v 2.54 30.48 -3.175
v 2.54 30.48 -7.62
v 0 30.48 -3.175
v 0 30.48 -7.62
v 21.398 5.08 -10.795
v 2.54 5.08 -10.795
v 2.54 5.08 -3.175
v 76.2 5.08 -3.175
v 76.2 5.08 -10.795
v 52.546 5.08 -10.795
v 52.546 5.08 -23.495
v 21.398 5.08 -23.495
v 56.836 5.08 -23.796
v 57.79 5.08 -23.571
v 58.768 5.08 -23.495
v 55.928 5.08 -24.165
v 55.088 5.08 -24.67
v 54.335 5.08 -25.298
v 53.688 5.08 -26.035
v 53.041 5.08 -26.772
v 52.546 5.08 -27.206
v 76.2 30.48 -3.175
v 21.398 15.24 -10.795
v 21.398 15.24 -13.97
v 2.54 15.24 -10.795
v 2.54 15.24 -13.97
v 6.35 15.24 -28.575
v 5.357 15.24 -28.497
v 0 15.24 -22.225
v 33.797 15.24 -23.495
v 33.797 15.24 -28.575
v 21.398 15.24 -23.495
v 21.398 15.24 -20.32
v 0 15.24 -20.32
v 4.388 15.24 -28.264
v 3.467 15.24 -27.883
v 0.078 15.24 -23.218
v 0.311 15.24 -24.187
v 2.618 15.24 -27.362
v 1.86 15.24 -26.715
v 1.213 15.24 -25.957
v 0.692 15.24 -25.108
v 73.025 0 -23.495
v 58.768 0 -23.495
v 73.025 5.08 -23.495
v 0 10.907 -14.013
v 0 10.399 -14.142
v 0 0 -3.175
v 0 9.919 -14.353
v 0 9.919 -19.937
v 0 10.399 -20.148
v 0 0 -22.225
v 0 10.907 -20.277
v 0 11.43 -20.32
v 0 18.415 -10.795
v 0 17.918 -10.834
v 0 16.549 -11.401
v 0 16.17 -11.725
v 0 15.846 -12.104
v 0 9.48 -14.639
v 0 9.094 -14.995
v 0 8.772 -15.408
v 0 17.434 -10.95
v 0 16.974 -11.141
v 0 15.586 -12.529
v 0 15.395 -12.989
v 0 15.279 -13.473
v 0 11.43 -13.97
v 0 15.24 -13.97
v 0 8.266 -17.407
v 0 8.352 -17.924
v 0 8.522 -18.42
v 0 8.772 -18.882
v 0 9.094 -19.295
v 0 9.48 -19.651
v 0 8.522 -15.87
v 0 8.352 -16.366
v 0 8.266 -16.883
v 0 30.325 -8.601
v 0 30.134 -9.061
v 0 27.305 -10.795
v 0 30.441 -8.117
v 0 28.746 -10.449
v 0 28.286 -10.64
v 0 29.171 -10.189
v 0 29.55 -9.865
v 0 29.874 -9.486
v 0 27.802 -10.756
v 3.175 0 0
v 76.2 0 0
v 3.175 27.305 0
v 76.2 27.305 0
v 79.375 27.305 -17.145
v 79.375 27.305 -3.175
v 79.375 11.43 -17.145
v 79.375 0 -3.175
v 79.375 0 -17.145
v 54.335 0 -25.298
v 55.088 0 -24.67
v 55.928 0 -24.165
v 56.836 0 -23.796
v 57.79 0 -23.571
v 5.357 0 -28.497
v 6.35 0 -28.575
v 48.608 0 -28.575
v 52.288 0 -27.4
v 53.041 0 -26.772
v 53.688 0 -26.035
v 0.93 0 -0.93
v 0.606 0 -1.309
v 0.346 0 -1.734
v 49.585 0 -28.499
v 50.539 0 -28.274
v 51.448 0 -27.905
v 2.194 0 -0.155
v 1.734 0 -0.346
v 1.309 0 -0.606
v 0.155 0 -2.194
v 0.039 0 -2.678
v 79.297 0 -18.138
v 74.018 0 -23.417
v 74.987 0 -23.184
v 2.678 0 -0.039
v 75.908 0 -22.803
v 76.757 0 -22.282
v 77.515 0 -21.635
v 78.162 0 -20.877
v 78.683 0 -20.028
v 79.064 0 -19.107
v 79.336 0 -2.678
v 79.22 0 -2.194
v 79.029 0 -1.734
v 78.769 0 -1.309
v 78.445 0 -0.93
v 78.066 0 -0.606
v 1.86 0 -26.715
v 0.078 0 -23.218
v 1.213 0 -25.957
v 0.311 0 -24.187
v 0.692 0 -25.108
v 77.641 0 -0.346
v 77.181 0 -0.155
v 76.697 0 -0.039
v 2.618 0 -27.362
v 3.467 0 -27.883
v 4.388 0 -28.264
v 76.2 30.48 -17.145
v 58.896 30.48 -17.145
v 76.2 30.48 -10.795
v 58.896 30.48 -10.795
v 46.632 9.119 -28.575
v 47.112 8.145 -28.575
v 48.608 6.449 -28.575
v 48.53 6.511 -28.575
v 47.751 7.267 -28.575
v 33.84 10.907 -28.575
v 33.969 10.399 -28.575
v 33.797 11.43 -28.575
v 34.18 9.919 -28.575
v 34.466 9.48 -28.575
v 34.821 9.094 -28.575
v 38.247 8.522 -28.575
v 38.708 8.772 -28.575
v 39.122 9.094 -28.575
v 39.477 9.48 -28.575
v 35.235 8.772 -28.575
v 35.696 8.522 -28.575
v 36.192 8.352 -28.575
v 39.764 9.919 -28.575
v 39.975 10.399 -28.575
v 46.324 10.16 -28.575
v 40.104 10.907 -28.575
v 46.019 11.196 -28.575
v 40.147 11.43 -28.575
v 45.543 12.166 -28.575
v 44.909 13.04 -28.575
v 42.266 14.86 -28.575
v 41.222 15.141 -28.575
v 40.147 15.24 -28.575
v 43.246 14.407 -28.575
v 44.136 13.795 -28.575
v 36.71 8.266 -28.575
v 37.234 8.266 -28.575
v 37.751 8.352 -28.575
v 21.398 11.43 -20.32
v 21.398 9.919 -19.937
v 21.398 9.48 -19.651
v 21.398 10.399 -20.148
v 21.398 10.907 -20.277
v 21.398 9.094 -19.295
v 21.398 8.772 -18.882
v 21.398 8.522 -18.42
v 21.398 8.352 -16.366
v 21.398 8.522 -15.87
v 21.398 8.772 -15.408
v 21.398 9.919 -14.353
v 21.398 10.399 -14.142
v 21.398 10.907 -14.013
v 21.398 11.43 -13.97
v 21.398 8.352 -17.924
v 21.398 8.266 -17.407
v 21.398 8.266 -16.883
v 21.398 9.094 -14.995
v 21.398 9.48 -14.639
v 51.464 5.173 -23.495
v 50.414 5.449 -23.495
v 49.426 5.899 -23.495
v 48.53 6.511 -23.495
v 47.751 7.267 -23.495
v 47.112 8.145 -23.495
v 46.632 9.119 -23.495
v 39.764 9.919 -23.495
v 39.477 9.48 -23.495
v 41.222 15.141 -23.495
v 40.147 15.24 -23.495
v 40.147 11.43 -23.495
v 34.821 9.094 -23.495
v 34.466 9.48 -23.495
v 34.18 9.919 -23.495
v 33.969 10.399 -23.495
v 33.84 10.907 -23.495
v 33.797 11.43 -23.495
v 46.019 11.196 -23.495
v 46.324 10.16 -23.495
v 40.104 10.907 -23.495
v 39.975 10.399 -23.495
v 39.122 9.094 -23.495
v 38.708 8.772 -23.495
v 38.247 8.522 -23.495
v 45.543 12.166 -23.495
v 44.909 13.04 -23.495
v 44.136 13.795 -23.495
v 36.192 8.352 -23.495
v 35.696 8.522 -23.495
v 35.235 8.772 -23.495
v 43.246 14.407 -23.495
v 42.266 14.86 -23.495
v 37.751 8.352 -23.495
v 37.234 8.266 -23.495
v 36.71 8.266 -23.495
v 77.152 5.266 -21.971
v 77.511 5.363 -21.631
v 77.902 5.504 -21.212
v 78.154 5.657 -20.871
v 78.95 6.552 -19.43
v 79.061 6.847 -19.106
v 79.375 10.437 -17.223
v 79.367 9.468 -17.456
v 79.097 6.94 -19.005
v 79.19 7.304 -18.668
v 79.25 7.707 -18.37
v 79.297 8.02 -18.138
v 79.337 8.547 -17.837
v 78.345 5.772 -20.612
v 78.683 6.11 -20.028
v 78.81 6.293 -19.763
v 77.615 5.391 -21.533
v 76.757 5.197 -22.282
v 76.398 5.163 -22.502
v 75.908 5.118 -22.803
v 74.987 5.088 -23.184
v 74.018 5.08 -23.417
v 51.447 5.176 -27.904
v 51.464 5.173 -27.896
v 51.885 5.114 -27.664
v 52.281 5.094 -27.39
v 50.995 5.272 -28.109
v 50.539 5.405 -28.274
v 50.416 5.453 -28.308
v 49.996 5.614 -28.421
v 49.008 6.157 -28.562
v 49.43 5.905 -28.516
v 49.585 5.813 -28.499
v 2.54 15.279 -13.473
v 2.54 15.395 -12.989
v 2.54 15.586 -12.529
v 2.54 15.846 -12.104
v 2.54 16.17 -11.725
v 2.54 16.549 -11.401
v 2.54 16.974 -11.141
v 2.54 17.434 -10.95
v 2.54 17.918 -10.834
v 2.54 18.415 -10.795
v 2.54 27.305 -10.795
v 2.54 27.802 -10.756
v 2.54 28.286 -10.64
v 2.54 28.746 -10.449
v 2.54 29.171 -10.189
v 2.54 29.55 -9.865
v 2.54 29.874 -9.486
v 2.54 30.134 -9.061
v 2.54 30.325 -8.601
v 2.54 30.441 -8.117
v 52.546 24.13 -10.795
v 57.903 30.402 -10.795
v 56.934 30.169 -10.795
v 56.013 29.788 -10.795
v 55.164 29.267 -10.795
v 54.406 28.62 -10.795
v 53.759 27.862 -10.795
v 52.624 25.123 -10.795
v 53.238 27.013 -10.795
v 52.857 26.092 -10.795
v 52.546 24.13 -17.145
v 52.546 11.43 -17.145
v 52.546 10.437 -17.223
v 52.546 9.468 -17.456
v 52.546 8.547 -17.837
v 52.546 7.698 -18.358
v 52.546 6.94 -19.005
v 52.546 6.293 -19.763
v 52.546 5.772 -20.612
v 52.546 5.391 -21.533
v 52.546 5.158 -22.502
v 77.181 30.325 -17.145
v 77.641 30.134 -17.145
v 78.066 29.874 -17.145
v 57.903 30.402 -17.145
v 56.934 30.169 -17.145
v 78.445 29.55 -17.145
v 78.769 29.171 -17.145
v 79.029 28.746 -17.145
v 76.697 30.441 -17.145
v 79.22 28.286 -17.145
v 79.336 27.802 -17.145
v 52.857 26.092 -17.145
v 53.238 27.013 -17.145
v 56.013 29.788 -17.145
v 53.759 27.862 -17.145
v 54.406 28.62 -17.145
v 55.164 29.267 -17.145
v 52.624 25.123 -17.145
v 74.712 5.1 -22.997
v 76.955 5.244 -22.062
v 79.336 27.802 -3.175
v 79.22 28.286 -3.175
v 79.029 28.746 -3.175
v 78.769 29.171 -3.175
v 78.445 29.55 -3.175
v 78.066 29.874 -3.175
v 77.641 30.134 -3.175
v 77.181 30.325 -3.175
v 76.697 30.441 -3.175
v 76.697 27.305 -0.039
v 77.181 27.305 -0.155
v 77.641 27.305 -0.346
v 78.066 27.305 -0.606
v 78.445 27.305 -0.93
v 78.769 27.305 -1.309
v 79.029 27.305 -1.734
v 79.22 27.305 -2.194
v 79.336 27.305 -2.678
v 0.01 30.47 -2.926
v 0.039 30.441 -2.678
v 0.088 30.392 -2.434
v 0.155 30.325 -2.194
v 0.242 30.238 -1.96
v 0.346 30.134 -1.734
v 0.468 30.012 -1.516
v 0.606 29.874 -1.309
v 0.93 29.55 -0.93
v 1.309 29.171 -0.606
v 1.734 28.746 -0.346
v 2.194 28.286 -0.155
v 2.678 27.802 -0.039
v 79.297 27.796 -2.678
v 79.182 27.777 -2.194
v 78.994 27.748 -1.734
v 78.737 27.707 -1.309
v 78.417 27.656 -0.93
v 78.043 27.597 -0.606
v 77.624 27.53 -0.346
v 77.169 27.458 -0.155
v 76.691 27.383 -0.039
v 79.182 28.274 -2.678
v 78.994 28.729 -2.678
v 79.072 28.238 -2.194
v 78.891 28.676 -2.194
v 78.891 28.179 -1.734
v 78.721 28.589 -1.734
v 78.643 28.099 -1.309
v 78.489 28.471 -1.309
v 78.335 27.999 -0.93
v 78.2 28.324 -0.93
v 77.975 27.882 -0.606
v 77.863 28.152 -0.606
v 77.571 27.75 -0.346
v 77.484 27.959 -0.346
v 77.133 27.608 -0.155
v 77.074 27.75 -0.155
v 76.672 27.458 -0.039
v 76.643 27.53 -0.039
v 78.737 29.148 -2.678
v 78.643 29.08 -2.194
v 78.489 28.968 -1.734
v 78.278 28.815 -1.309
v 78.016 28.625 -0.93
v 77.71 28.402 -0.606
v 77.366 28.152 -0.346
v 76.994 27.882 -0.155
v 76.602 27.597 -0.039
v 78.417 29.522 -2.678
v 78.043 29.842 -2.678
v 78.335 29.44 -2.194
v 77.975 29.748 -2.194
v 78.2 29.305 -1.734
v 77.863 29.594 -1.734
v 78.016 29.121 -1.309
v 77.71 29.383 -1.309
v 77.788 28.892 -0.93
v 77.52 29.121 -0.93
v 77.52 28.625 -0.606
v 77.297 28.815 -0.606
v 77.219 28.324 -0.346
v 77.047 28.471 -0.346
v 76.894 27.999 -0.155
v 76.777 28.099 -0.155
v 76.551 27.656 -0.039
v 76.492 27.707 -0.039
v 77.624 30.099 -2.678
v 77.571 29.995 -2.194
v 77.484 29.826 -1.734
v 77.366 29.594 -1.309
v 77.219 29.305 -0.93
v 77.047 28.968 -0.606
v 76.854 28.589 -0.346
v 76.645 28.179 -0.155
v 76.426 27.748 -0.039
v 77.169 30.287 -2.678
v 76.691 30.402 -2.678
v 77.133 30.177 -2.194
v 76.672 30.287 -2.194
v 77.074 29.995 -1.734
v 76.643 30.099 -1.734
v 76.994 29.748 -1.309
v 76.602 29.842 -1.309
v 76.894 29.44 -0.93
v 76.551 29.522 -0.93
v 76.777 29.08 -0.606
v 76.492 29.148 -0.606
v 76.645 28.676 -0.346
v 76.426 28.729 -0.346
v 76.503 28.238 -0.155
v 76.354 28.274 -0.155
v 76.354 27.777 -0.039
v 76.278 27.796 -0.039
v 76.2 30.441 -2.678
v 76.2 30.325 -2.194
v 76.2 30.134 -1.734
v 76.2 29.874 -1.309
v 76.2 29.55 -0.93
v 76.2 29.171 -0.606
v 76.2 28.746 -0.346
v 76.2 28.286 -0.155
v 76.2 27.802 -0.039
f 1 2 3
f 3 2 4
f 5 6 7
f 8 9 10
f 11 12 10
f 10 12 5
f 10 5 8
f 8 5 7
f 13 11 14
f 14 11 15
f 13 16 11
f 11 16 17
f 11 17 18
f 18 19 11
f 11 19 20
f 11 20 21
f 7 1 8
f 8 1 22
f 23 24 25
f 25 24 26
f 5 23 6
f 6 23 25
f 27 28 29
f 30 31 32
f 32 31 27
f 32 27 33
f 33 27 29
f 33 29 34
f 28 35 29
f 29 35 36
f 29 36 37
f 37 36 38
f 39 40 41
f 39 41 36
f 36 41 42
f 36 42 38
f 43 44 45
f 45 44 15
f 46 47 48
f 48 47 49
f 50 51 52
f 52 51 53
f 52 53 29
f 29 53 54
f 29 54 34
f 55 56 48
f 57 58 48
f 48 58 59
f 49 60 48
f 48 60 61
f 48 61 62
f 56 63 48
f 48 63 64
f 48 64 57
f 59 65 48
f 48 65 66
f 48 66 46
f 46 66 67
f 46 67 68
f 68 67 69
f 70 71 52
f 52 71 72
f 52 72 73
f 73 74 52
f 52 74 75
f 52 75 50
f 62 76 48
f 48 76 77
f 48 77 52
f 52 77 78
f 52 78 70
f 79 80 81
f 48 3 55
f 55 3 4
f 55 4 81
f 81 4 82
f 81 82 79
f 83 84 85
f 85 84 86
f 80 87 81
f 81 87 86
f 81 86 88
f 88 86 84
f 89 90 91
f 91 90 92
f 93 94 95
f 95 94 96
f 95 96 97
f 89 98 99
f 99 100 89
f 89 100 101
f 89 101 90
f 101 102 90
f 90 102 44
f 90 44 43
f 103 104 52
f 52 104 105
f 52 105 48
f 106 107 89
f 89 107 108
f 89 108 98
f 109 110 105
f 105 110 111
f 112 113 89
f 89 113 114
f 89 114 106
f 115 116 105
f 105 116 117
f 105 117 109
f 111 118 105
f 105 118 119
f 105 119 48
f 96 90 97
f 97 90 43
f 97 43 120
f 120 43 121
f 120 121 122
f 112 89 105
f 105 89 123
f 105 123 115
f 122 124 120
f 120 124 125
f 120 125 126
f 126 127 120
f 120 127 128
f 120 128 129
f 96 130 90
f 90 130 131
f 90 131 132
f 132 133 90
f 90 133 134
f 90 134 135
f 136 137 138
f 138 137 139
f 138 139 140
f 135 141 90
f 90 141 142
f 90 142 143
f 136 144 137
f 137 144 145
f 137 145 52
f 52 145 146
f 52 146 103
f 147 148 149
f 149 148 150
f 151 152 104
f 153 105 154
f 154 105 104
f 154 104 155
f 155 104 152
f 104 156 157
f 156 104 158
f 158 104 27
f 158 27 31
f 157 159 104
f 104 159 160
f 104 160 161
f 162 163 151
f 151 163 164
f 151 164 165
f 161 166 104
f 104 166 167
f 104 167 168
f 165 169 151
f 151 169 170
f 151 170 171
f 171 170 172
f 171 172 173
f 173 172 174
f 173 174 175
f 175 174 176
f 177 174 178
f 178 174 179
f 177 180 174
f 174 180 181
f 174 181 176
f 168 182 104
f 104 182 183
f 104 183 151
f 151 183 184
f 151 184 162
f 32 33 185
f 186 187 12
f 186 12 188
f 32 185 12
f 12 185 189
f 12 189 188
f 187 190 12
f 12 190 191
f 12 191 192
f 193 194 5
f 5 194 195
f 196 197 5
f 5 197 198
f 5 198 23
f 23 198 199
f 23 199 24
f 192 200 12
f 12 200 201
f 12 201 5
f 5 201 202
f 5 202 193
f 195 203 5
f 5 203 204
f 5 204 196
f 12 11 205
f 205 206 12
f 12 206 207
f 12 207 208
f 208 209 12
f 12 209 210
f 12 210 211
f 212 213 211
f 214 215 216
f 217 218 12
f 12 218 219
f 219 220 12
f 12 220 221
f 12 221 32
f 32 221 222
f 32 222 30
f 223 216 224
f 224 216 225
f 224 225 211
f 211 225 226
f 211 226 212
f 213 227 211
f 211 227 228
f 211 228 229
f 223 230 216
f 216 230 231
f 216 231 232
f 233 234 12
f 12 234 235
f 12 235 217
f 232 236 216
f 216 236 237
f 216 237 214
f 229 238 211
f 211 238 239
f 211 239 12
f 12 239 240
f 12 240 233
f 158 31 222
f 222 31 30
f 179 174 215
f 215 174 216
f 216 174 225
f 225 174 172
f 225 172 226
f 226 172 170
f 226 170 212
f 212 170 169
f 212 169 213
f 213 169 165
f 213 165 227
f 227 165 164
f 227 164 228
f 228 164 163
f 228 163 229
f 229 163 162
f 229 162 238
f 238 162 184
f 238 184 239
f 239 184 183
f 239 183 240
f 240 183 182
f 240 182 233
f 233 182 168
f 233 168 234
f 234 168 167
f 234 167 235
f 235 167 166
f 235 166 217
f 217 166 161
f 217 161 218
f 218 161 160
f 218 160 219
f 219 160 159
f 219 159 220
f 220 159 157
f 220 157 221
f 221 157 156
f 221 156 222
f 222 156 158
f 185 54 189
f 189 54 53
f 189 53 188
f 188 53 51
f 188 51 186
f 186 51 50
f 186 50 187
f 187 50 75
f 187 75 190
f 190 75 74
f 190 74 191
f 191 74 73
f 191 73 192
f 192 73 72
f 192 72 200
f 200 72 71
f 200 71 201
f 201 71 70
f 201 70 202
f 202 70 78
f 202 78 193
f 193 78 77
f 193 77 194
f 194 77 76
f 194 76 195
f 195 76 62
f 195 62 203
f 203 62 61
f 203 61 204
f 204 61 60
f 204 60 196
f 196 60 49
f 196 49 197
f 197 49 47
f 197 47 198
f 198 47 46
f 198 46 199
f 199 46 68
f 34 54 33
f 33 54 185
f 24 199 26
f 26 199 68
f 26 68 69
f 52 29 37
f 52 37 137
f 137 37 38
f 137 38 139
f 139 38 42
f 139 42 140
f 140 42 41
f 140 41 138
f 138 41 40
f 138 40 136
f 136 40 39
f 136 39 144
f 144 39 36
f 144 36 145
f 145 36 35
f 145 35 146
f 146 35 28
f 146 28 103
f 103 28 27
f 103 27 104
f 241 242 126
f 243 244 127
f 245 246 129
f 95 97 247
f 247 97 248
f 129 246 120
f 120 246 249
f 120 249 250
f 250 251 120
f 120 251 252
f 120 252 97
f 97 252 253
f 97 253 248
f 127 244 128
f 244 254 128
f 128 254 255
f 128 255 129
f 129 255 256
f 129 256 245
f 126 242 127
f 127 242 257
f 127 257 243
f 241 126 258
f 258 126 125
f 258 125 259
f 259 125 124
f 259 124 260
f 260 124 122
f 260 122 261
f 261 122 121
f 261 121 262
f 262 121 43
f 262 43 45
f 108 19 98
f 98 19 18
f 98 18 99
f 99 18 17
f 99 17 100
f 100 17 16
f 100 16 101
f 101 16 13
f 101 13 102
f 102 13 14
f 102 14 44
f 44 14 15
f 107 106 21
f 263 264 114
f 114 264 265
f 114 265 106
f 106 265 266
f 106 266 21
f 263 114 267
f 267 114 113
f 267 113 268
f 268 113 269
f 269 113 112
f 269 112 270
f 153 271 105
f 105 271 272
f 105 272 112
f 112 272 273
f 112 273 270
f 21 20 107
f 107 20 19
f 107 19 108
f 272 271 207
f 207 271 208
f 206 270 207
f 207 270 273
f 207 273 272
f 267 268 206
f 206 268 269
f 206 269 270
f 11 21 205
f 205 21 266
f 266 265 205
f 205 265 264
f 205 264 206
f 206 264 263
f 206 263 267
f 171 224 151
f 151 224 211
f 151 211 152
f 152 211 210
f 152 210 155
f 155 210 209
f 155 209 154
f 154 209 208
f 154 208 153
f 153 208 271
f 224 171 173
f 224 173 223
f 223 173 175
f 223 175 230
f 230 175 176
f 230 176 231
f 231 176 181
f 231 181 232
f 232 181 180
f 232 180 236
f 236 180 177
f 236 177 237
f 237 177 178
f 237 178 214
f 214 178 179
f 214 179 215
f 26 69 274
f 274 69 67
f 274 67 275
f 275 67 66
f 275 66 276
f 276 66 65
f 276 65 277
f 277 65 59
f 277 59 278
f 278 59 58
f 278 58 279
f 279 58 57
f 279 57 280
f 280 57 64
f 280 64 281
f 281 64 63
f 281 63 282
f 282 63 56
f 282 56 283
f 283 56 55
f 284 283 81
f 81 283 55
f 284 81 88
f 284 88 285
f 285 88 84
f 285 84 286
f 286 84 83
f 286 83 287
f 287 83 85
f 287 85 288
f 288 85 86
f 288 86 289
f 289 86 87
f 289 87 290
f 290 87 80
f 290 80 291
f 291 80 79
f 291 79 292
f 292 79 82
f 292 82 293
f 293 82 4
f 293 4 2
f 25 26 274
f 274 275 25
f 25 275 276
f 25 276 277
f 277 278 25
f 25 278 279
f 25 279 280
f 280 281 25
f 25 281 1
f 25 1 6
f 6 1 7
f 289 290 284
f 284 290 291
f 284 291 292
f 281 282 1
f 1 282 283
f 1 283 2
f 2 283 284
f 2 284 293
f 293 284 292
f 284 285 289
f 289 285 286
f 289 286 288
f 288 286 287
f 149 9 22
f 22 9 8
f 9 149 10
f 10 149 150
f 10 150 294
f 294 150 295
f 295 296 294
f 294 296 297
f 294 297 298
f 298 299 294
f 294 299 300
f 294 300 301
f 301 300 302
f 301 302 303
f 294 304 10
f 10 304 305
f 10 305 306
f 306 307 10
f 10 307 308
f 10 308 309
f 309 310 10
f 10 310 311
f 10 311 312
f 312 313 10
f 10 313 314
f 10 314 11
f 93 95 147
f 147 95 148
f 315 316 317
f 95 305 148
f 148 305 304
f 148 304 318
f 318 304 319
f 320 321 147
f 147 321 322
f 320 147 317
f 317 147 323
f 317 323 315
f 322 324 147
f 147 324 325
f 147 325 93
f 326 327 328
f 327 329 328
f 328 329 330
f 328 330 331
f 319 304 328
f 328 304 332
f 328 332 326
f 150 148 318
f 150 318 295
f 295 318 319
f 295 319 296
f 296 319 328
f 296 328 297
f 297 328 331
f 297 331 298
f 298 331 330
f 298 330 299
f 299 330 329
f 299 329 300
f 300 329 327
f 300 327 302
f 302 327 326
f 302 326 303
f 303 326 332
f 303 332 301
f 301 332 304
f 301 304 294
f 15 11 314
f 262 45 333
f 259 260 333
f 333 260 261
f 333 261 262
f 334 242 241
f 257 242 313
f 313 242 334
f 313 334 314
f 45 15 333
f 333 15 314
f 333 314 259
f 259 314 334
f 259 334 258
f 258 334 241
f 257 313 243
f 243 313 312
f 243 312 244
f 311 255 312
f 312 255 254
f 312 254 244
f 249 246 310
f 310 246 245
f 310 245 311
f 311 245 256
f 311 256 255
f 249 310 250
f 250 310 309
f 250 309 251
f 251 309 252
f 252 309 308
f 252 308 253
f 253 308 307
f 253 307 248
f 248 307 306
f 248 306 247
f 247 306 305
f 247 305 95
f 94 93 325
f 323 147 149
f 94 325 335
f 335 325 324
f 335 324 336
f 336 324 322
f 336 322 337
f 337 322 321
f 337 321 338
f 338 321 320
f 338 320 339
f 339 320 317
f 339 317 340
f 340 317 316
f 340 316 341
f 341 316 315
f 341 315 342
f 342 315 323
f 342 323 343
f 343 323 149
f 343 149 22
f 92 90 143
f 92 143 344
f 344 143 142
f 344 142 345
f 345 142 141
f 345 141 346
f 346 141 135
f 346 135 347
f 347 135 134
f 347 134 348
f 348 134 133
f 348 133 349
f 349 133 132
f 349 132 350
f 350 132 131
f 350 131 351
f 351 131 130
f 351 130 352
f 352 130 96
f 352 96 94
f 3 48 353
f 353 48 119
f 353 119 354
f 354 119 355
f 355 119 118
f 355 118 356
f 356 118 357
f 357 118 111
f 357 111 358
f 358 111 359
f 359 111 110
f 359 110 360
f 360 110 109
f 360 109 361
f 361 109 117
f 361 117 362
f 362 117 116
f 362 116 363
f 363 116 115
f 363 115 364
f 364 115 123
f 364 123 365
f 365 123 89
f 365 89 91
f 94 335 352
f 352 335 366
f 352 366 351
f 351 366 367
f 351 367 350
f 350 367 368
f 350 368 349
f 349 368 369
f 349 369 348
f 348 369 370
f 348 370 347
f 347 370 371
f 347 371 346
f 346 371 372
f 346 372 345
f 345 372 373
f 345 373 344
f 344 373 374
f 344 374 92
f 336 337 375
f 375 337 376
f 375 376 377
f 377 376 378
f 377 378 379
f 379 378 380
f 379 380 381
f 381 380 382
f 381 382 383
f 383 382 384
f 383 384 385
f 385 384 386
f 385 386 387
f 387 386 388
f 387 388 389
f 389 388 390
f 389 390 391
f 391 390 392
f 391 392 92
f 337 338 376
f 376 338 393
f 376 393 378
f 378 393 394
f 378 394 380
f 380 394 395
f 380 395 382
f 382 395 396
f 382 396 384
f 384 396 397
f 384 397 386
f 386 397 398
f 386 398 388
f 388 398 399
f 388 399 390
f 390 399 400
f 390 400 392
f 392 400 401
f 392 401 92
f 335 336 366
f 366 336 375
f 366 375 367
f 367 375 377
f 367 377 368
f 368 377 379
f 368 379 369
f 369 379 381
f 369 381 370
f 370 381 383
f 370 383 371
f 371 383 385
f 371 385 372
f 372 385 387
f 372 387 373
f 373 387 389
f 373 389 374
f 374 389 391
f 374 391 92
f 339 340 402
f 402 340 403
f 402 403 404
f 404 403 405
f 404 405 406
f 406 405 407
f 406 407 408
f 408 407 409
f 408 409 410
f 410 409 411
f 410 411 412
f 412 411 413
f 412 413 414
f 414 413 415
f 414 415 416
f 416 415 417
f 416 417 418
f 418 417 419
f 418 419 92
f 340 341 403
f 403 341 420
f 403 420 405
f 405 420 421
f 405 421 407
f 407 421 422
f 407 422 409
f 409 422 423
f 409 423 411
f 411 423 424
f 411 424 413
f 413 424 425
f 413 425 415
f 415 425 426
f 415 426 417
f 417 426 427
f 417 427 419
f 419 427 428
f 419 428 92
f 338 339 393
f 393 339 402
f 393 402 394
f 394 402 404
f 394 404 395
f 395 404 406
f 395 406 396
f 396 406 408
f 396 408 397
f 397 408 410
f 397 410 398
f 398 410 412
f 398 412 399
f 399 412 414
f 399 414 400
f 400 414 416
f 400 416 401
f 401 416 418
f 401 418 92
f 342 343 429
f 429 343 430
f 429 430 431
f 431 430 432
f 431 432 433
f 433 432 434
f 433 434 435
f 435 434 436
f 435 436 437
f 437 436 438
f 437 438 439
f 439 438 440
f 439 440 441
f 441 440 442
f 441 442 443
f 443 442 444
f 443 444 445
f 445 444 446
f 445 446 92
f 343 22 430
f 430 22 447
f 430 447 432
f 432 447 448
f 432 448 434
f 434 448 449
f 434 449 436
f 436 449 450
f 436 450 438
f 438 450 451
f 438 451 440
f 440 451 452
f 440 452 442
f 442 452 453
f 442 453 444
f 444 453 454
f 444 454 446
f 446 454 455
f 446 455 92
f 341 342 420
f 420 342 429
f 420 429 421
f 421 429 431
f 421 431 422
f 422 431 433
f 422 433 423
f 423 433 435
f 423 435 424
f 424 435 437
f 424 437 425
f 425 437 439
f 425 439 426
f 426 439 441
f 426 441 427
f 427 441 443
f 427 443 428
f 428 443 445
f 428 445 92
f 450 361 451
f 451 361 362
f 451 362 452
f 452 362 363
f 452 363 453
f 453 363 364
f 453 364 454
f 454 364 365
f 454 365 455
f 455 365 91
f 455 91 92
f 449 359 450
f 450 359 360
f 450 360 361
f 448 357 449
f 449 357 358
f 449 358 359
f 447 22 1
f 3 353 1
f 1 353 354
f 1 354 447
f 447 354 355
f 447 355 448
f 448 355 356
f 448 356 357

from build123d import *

# Parameters (mm, degrees)
SKETCH1_W           = 79.375
SKETCH1_H           = 23.495
BOSS_EXTRUDE1_DEPTH = 5.08
SKETCH2_W           = 79.375
SKETCH2_H           = 3.175
BOSS_EXTRUDE2_DEPTH = 25.4
SKETCH3_W           = 52.546018004
SKETCH3_H           = 5.08
BOSS_EXTRUDE3_DEPTH = 5.08
BOSS_EXTRUDE4_DEPTH = 10.16
CUT_EXTRUDE1_REACH  = 91.699
CUT_EXTRUDE2_REACH  = 91.699
FILLET2_R           = 6.35
FILLET3_R           = 6.35
FILLET4_R           = 6.35
FILLET5_R           = 6.35
BOSS_EXTRUDE6_DEPTH = 2.54
BOSS_EXTRUDE7_DEPTH = 25.4
FILLET6_R           = 6.35
FILLET7_START       = 52.546018004
FILLET7_DEPTH       = 26.828981996
FILLET7_START_2     = 5.08
FILLET7_2_DEPTH     = 6.92
FILLET8_START       = -18
FILLET8_DEPTH       = 19
FILLET9_R           = 3.175


with BuildPart() as part:
    # Sketch1 → Boss-Extrude1 (new body)
    with BuildSketch(Plane(origin=(0, 0, 0), x_dir=(1, 0, 0), z_dir=(0, 1, 0))):
        with Locations((39.6875, 11.7475)):
            Rectangle(SKETCH1_W, SKETCH1_H)
    extrude(amount=BOSS_EXTRUDE1_DEPTH)

    # Sketch2 → Boss-Extrude2 (add)
    with BuildSketch(Plane(origin=(0, 5.08, 0), x_dir=(1, 0, 0), z_dir=(0, 1, 0))):
        with Locations((39.6875, 1.5875)):
            Rectangle(SKETCH2_W, SKETCH2_H)
    extrude(amount=BOSS_EXTRUDE2_DEPTH)

    # Sketch3 → Boss-Extrude3 (add)
    with BuildSketch(Plane(origin=(0, 0, -23.495), x_dir=(-1, 0, 0), z_dir=(0, 0, -1))):
        with Locations((-26.273009002, 2.54)):
            Rectangle(SKETCH3_W, SKETCH3_H)
    extrude(amount=BOSS_EXTRUDE3_DEPTH)

    # Sketch4 → Boss-Extrude4 (add)
    with BuildSketch(Plane(origin=(0, 5.08, 0), x_dir=(1, 0, 0), z_dir=(0, 1, 0))):
        Polygon((46.196018004, 28.575), (0, 28.575), (0, 10.795), (21.397643113, 10.795), (21.397643113, 23.495), (46.196018004, 23.495), align=None)
    extrude(amount=BOSS_EXTRUDE4_DEPTH)

    # Sketch7 → Cut-Extrude1 (cut, up to next)
    with BuildSketch(Plane(origin=(0, 0, -28.575), x_dir=(-1, 0, 0), z_dir=(0, 0, -1)), mode=Mode.PRIVATE) as cut_extrude1_sk1:
        with BuildLine():
            Line((-40.146830558, 11.43), (-40.146830558, 15.24))
            Line((-40.146830558, 15.24), (-33.796830558, 15.24))
            Line((-33.796830558, 15.24), (-33.796830558, 11.43))
            ThreePointArc((-33.796830558, 11.43), (-36.971830558, 8.255), (-40.146830558, 11.43))
        make_face()
    cut_extrude1_tool1 = extrude(cut_extrude1_sk1.sketch, amount=-CUT_EXTRUDE1_REACH, mode=Mode.PRIVATE) & part.part
    add(cut_extrude1_tool1.solids().sort_by_distance((36.971831, 12.048348, -28.575))[0], mode=Mode.SUBTRACT)

    # Sketch8 → Cut-Extrude2 (cut, up to next)
    with BuildSketch(Plane.ZY, mode=Mode.PRIVATE) as cut_extrude2_sk1:
        with BuildLine():
            Line((-13.97, 11.43), (-13.97, 15.24))
            Line((-13.97, 15.24), (-20.32, 15.24))
            Line((-20.32, 15.24), (-20.32, 11.43))
            ThreePointArc((-20.32, 11.43), (-17.145, 8.255), (-13.97, 11.43))
        make_face()
    cut_extrude2_tool1 = extrude(cut_extrude2_sk1.sketch, amount=-CUT_EXTRUDE2_REACH, mode=Mode.PRIVATE) & part.part
    add(cut_extrude2_tool1.solids().sort_by_distance((0, 12.048348, -17.145))[0], mode=Mode.SUBTRACT)

    # Fillet2
    # the kernel refuses this fillet: 6.35 mm, written as the material it adds along each edge
    with BuildSketch(Plane(origin=(52.546018004, 5.08, -23.495), x_dir=(1, 0, 0), z_dir=(0, -1, 0))) as fillet2_piece_1:
        with BuildLine():
            CenterArc((6.221703947, -6.35), FILLET2_R, 90, 78.463040967)
            Line((0, -5.08), (0, 0))
            Line((0, 0), (6.221703947, 0))
        make_face()
    extrude(amount=5.08)
    # the kernel refuses this fillet: 6.35 mm, written as the material it takes off along each edge
    with BuildSketch(Plane(origin=(0, 31.115, -28.575), x_dir=(0, 0, 1), z_dir=(0, -1, 0))) as fillet2_2_piece_1:
        with BuildLine():
            CenterArc((FILLET2_R, -FILLET2_R), FILLET2_R, 90, 90)
            Line((0, -FILLET2_R), (0, 0))
            Line((0, 0), (FILLET2_R, 0))
        make_face()
    extrude(amount=46.99, mode=Mode.SUBTRACT)
    with BuildSketch(Plane(origin=(79.375, -15.875, -23.495), x_dir=(0, 0, 1), z_dir=(0, 1, 0))) as fillet2_2_piece_2:
        with BuildLine():
            CenterArc((FILLET2_R, -FILLET2_R), FILLET2_R, 90, 90)
            Line((0, -FILLET2_R), (0, 0))
            Line((0, 0), (FILLET2_R, 0))
        make_face()
    extrude(amount=36.83, mode=Mode.SUBTRACT)

    # Fillet3
    fillet3_edges = [part.edges().sort_by_distance(p)[0] for p in [
        (52.546018004, 2.54, -28.575),
    ]]
    fillet(fillet3_edges, radius=FILLET3_R)

    # Fillet4
    fillet4_edges = [part.edges().sort_by_distance(p)[0] for p in [
        (46.196018004, 5.08, -26.035),
    ]]
    fillet(fillet4_edges, radius=FILLET4_R)

    # Fillet5
    # the kernel refuses this fillet: 6.35 mm, written as the material it takes off along each edge
    with BuildSketch(Plane(origin=(46.196018004, 15.24, -8.261480267), x_dir=(-1, 0, 0), z_dir=(0, 0, -1))) as fillet5_piece_1:
        with BuildLine():
            CenterArc((6.093407893, -6.35), FILLET5_R, 90, 78.463040967)
            Line((-0.128296053, -5.08), (-0.750466448, -4.953))
            ThreePointArc((-0.750466448, -4.953), (-0.635, -3.81), (-0.635, 0))
            Line((-0.635, 0), (0, 0.635))
            Line((0, 0.635), (6.093407893, 0.635))
            Line((6.093407893, 0.635), (6.093407893, 0))
        make_face()
    extrude(amount=35.547039467, mode=Mode.SUBTRACT)

    # Sketch10 → Boss-Extrude6 (add)
    with BuildSketch(Plane.ZY):
        with BuildLine():
            Line((-3.175, 5.08), (-10.795, 5.08))
            Line((-10.795, 5.08), (-10.795, 15.24))
            Line((-10.795, 15.24), (-13.97, 15.24))
            ThreePointArc((-13.97, 15.24), (-11.72493597, 16.16993597), (-10.795, 18.415))
            Line((-10.795, 18.415), (-10.795, 27.305))
            ThreePointArc((-10.795, 27.305), (-9.86506403, 29.55006403), (-7.62, 30.48))
            Line((-7.62, 30.48), (-3.175, 30.48))
            Line((-3.175, 30.48), (-3.175, 5.08))
        make_face()
    extrude(amount=-BOSS_EXTRUDE6_DEPTH)

    # Sketch11 → Boss-Extrude7 (add)
    with BuildSketch(Plane(origin=(0, 5.08, 0), x_dir=(1, 0, 0), z_dir=(0, 1, 0))):
        Polygon((79.375, 3.175), (79.375, 17.145), (52.546018004, 17.145), (52.546018004, 10.795), (76.2, 10.795), (76.2, 3.175), align=None)
    extrude(amount=BOSS_EXTRUDE7_DEPTH)

    # Fillet6
    fillet6_edges = [part.edges().sort_by_distance(p)[0] for p in [
        (52.546018004, 30.48, -13.97),
    ]]
    fillet(fillet6_edges, radius=FILLET6_R)

    # Fillet7: read off the stored shape, not the designer's step
    # Fillet7 outline → Fillet7 (add)
    with BuildSketch(Plane.YZ.offset(FILLET7_START)):
        with BuildLine():
            ThreePointArc((5.08, -23.495), (6.939871939, -19.004871939), (11.43, -17.145))
            Line((11.43, -17.145), (5.08, -17.145))
            Line((5.08, -17.145), (5.08, -23.495))
        make_face()
    extrude(amount=FILLET7_DEPTH)

    # Fillet7 2 outline → Fillet7 2 (cut)
    with BuildSketch(Plane(origin=(0, 0, 0), x_dir=(1, 0, 0), z_dir=(0, 1, 0)).offset(FILLET7_START_2)):
        with BuildLine():
            Line((72, 23.495), (73.025, 23.495))
            ThreePointArc((73.025, 23.495), (77.515129122, 21.635126999), (79.375, 17.144996999))
            Line((79.375, 17.144996999), (79.374999459, 16))
            Line((79.374999459, 16), (81, 16))
            Line((81, 16), (81, 25))
            Line((81, 25), (72, 25))
            Line((72, 25), (72, 23.495))
        make_face()
    extrude(amount=FILLET7_2_DEPTH, mode=Mode.SUBTRACT)

    # Fillet8: read off the stored shape, not the designer's step
    # Fillet8 outline → Fillet8 (cut)
    with BuildSketch(Plane.XY.offset(FILLET8_START)):
        with BuildLine():
            Line((79.375, 30.48), (76.2, 30.48))
            ThreePointArc((76.2, 30.48), (78.44506403, 29.55006403), (79.375, 27.305))
            Line((79.375, 27.305), (79.375, 30.48))
        make_face()
    extrude(amount=FILLET8_DEPTH, mode=Mode.SUBTRACT)

    # Fillet9
    fillet9_edges = [part.edges().sort_by_distance(p)[0] for p in [
        (38.1, 30.48, 0),
        (79.375, 13.6525, 0),
        (0, 15.24, 0),
        (78.44506403, 29.55006403, 0),
    ]]
    fillet(fillet9_edges, radius=FILLET9_R - 0.0001)  # a hair under: the kernel refuses the full size


solid = part.part
